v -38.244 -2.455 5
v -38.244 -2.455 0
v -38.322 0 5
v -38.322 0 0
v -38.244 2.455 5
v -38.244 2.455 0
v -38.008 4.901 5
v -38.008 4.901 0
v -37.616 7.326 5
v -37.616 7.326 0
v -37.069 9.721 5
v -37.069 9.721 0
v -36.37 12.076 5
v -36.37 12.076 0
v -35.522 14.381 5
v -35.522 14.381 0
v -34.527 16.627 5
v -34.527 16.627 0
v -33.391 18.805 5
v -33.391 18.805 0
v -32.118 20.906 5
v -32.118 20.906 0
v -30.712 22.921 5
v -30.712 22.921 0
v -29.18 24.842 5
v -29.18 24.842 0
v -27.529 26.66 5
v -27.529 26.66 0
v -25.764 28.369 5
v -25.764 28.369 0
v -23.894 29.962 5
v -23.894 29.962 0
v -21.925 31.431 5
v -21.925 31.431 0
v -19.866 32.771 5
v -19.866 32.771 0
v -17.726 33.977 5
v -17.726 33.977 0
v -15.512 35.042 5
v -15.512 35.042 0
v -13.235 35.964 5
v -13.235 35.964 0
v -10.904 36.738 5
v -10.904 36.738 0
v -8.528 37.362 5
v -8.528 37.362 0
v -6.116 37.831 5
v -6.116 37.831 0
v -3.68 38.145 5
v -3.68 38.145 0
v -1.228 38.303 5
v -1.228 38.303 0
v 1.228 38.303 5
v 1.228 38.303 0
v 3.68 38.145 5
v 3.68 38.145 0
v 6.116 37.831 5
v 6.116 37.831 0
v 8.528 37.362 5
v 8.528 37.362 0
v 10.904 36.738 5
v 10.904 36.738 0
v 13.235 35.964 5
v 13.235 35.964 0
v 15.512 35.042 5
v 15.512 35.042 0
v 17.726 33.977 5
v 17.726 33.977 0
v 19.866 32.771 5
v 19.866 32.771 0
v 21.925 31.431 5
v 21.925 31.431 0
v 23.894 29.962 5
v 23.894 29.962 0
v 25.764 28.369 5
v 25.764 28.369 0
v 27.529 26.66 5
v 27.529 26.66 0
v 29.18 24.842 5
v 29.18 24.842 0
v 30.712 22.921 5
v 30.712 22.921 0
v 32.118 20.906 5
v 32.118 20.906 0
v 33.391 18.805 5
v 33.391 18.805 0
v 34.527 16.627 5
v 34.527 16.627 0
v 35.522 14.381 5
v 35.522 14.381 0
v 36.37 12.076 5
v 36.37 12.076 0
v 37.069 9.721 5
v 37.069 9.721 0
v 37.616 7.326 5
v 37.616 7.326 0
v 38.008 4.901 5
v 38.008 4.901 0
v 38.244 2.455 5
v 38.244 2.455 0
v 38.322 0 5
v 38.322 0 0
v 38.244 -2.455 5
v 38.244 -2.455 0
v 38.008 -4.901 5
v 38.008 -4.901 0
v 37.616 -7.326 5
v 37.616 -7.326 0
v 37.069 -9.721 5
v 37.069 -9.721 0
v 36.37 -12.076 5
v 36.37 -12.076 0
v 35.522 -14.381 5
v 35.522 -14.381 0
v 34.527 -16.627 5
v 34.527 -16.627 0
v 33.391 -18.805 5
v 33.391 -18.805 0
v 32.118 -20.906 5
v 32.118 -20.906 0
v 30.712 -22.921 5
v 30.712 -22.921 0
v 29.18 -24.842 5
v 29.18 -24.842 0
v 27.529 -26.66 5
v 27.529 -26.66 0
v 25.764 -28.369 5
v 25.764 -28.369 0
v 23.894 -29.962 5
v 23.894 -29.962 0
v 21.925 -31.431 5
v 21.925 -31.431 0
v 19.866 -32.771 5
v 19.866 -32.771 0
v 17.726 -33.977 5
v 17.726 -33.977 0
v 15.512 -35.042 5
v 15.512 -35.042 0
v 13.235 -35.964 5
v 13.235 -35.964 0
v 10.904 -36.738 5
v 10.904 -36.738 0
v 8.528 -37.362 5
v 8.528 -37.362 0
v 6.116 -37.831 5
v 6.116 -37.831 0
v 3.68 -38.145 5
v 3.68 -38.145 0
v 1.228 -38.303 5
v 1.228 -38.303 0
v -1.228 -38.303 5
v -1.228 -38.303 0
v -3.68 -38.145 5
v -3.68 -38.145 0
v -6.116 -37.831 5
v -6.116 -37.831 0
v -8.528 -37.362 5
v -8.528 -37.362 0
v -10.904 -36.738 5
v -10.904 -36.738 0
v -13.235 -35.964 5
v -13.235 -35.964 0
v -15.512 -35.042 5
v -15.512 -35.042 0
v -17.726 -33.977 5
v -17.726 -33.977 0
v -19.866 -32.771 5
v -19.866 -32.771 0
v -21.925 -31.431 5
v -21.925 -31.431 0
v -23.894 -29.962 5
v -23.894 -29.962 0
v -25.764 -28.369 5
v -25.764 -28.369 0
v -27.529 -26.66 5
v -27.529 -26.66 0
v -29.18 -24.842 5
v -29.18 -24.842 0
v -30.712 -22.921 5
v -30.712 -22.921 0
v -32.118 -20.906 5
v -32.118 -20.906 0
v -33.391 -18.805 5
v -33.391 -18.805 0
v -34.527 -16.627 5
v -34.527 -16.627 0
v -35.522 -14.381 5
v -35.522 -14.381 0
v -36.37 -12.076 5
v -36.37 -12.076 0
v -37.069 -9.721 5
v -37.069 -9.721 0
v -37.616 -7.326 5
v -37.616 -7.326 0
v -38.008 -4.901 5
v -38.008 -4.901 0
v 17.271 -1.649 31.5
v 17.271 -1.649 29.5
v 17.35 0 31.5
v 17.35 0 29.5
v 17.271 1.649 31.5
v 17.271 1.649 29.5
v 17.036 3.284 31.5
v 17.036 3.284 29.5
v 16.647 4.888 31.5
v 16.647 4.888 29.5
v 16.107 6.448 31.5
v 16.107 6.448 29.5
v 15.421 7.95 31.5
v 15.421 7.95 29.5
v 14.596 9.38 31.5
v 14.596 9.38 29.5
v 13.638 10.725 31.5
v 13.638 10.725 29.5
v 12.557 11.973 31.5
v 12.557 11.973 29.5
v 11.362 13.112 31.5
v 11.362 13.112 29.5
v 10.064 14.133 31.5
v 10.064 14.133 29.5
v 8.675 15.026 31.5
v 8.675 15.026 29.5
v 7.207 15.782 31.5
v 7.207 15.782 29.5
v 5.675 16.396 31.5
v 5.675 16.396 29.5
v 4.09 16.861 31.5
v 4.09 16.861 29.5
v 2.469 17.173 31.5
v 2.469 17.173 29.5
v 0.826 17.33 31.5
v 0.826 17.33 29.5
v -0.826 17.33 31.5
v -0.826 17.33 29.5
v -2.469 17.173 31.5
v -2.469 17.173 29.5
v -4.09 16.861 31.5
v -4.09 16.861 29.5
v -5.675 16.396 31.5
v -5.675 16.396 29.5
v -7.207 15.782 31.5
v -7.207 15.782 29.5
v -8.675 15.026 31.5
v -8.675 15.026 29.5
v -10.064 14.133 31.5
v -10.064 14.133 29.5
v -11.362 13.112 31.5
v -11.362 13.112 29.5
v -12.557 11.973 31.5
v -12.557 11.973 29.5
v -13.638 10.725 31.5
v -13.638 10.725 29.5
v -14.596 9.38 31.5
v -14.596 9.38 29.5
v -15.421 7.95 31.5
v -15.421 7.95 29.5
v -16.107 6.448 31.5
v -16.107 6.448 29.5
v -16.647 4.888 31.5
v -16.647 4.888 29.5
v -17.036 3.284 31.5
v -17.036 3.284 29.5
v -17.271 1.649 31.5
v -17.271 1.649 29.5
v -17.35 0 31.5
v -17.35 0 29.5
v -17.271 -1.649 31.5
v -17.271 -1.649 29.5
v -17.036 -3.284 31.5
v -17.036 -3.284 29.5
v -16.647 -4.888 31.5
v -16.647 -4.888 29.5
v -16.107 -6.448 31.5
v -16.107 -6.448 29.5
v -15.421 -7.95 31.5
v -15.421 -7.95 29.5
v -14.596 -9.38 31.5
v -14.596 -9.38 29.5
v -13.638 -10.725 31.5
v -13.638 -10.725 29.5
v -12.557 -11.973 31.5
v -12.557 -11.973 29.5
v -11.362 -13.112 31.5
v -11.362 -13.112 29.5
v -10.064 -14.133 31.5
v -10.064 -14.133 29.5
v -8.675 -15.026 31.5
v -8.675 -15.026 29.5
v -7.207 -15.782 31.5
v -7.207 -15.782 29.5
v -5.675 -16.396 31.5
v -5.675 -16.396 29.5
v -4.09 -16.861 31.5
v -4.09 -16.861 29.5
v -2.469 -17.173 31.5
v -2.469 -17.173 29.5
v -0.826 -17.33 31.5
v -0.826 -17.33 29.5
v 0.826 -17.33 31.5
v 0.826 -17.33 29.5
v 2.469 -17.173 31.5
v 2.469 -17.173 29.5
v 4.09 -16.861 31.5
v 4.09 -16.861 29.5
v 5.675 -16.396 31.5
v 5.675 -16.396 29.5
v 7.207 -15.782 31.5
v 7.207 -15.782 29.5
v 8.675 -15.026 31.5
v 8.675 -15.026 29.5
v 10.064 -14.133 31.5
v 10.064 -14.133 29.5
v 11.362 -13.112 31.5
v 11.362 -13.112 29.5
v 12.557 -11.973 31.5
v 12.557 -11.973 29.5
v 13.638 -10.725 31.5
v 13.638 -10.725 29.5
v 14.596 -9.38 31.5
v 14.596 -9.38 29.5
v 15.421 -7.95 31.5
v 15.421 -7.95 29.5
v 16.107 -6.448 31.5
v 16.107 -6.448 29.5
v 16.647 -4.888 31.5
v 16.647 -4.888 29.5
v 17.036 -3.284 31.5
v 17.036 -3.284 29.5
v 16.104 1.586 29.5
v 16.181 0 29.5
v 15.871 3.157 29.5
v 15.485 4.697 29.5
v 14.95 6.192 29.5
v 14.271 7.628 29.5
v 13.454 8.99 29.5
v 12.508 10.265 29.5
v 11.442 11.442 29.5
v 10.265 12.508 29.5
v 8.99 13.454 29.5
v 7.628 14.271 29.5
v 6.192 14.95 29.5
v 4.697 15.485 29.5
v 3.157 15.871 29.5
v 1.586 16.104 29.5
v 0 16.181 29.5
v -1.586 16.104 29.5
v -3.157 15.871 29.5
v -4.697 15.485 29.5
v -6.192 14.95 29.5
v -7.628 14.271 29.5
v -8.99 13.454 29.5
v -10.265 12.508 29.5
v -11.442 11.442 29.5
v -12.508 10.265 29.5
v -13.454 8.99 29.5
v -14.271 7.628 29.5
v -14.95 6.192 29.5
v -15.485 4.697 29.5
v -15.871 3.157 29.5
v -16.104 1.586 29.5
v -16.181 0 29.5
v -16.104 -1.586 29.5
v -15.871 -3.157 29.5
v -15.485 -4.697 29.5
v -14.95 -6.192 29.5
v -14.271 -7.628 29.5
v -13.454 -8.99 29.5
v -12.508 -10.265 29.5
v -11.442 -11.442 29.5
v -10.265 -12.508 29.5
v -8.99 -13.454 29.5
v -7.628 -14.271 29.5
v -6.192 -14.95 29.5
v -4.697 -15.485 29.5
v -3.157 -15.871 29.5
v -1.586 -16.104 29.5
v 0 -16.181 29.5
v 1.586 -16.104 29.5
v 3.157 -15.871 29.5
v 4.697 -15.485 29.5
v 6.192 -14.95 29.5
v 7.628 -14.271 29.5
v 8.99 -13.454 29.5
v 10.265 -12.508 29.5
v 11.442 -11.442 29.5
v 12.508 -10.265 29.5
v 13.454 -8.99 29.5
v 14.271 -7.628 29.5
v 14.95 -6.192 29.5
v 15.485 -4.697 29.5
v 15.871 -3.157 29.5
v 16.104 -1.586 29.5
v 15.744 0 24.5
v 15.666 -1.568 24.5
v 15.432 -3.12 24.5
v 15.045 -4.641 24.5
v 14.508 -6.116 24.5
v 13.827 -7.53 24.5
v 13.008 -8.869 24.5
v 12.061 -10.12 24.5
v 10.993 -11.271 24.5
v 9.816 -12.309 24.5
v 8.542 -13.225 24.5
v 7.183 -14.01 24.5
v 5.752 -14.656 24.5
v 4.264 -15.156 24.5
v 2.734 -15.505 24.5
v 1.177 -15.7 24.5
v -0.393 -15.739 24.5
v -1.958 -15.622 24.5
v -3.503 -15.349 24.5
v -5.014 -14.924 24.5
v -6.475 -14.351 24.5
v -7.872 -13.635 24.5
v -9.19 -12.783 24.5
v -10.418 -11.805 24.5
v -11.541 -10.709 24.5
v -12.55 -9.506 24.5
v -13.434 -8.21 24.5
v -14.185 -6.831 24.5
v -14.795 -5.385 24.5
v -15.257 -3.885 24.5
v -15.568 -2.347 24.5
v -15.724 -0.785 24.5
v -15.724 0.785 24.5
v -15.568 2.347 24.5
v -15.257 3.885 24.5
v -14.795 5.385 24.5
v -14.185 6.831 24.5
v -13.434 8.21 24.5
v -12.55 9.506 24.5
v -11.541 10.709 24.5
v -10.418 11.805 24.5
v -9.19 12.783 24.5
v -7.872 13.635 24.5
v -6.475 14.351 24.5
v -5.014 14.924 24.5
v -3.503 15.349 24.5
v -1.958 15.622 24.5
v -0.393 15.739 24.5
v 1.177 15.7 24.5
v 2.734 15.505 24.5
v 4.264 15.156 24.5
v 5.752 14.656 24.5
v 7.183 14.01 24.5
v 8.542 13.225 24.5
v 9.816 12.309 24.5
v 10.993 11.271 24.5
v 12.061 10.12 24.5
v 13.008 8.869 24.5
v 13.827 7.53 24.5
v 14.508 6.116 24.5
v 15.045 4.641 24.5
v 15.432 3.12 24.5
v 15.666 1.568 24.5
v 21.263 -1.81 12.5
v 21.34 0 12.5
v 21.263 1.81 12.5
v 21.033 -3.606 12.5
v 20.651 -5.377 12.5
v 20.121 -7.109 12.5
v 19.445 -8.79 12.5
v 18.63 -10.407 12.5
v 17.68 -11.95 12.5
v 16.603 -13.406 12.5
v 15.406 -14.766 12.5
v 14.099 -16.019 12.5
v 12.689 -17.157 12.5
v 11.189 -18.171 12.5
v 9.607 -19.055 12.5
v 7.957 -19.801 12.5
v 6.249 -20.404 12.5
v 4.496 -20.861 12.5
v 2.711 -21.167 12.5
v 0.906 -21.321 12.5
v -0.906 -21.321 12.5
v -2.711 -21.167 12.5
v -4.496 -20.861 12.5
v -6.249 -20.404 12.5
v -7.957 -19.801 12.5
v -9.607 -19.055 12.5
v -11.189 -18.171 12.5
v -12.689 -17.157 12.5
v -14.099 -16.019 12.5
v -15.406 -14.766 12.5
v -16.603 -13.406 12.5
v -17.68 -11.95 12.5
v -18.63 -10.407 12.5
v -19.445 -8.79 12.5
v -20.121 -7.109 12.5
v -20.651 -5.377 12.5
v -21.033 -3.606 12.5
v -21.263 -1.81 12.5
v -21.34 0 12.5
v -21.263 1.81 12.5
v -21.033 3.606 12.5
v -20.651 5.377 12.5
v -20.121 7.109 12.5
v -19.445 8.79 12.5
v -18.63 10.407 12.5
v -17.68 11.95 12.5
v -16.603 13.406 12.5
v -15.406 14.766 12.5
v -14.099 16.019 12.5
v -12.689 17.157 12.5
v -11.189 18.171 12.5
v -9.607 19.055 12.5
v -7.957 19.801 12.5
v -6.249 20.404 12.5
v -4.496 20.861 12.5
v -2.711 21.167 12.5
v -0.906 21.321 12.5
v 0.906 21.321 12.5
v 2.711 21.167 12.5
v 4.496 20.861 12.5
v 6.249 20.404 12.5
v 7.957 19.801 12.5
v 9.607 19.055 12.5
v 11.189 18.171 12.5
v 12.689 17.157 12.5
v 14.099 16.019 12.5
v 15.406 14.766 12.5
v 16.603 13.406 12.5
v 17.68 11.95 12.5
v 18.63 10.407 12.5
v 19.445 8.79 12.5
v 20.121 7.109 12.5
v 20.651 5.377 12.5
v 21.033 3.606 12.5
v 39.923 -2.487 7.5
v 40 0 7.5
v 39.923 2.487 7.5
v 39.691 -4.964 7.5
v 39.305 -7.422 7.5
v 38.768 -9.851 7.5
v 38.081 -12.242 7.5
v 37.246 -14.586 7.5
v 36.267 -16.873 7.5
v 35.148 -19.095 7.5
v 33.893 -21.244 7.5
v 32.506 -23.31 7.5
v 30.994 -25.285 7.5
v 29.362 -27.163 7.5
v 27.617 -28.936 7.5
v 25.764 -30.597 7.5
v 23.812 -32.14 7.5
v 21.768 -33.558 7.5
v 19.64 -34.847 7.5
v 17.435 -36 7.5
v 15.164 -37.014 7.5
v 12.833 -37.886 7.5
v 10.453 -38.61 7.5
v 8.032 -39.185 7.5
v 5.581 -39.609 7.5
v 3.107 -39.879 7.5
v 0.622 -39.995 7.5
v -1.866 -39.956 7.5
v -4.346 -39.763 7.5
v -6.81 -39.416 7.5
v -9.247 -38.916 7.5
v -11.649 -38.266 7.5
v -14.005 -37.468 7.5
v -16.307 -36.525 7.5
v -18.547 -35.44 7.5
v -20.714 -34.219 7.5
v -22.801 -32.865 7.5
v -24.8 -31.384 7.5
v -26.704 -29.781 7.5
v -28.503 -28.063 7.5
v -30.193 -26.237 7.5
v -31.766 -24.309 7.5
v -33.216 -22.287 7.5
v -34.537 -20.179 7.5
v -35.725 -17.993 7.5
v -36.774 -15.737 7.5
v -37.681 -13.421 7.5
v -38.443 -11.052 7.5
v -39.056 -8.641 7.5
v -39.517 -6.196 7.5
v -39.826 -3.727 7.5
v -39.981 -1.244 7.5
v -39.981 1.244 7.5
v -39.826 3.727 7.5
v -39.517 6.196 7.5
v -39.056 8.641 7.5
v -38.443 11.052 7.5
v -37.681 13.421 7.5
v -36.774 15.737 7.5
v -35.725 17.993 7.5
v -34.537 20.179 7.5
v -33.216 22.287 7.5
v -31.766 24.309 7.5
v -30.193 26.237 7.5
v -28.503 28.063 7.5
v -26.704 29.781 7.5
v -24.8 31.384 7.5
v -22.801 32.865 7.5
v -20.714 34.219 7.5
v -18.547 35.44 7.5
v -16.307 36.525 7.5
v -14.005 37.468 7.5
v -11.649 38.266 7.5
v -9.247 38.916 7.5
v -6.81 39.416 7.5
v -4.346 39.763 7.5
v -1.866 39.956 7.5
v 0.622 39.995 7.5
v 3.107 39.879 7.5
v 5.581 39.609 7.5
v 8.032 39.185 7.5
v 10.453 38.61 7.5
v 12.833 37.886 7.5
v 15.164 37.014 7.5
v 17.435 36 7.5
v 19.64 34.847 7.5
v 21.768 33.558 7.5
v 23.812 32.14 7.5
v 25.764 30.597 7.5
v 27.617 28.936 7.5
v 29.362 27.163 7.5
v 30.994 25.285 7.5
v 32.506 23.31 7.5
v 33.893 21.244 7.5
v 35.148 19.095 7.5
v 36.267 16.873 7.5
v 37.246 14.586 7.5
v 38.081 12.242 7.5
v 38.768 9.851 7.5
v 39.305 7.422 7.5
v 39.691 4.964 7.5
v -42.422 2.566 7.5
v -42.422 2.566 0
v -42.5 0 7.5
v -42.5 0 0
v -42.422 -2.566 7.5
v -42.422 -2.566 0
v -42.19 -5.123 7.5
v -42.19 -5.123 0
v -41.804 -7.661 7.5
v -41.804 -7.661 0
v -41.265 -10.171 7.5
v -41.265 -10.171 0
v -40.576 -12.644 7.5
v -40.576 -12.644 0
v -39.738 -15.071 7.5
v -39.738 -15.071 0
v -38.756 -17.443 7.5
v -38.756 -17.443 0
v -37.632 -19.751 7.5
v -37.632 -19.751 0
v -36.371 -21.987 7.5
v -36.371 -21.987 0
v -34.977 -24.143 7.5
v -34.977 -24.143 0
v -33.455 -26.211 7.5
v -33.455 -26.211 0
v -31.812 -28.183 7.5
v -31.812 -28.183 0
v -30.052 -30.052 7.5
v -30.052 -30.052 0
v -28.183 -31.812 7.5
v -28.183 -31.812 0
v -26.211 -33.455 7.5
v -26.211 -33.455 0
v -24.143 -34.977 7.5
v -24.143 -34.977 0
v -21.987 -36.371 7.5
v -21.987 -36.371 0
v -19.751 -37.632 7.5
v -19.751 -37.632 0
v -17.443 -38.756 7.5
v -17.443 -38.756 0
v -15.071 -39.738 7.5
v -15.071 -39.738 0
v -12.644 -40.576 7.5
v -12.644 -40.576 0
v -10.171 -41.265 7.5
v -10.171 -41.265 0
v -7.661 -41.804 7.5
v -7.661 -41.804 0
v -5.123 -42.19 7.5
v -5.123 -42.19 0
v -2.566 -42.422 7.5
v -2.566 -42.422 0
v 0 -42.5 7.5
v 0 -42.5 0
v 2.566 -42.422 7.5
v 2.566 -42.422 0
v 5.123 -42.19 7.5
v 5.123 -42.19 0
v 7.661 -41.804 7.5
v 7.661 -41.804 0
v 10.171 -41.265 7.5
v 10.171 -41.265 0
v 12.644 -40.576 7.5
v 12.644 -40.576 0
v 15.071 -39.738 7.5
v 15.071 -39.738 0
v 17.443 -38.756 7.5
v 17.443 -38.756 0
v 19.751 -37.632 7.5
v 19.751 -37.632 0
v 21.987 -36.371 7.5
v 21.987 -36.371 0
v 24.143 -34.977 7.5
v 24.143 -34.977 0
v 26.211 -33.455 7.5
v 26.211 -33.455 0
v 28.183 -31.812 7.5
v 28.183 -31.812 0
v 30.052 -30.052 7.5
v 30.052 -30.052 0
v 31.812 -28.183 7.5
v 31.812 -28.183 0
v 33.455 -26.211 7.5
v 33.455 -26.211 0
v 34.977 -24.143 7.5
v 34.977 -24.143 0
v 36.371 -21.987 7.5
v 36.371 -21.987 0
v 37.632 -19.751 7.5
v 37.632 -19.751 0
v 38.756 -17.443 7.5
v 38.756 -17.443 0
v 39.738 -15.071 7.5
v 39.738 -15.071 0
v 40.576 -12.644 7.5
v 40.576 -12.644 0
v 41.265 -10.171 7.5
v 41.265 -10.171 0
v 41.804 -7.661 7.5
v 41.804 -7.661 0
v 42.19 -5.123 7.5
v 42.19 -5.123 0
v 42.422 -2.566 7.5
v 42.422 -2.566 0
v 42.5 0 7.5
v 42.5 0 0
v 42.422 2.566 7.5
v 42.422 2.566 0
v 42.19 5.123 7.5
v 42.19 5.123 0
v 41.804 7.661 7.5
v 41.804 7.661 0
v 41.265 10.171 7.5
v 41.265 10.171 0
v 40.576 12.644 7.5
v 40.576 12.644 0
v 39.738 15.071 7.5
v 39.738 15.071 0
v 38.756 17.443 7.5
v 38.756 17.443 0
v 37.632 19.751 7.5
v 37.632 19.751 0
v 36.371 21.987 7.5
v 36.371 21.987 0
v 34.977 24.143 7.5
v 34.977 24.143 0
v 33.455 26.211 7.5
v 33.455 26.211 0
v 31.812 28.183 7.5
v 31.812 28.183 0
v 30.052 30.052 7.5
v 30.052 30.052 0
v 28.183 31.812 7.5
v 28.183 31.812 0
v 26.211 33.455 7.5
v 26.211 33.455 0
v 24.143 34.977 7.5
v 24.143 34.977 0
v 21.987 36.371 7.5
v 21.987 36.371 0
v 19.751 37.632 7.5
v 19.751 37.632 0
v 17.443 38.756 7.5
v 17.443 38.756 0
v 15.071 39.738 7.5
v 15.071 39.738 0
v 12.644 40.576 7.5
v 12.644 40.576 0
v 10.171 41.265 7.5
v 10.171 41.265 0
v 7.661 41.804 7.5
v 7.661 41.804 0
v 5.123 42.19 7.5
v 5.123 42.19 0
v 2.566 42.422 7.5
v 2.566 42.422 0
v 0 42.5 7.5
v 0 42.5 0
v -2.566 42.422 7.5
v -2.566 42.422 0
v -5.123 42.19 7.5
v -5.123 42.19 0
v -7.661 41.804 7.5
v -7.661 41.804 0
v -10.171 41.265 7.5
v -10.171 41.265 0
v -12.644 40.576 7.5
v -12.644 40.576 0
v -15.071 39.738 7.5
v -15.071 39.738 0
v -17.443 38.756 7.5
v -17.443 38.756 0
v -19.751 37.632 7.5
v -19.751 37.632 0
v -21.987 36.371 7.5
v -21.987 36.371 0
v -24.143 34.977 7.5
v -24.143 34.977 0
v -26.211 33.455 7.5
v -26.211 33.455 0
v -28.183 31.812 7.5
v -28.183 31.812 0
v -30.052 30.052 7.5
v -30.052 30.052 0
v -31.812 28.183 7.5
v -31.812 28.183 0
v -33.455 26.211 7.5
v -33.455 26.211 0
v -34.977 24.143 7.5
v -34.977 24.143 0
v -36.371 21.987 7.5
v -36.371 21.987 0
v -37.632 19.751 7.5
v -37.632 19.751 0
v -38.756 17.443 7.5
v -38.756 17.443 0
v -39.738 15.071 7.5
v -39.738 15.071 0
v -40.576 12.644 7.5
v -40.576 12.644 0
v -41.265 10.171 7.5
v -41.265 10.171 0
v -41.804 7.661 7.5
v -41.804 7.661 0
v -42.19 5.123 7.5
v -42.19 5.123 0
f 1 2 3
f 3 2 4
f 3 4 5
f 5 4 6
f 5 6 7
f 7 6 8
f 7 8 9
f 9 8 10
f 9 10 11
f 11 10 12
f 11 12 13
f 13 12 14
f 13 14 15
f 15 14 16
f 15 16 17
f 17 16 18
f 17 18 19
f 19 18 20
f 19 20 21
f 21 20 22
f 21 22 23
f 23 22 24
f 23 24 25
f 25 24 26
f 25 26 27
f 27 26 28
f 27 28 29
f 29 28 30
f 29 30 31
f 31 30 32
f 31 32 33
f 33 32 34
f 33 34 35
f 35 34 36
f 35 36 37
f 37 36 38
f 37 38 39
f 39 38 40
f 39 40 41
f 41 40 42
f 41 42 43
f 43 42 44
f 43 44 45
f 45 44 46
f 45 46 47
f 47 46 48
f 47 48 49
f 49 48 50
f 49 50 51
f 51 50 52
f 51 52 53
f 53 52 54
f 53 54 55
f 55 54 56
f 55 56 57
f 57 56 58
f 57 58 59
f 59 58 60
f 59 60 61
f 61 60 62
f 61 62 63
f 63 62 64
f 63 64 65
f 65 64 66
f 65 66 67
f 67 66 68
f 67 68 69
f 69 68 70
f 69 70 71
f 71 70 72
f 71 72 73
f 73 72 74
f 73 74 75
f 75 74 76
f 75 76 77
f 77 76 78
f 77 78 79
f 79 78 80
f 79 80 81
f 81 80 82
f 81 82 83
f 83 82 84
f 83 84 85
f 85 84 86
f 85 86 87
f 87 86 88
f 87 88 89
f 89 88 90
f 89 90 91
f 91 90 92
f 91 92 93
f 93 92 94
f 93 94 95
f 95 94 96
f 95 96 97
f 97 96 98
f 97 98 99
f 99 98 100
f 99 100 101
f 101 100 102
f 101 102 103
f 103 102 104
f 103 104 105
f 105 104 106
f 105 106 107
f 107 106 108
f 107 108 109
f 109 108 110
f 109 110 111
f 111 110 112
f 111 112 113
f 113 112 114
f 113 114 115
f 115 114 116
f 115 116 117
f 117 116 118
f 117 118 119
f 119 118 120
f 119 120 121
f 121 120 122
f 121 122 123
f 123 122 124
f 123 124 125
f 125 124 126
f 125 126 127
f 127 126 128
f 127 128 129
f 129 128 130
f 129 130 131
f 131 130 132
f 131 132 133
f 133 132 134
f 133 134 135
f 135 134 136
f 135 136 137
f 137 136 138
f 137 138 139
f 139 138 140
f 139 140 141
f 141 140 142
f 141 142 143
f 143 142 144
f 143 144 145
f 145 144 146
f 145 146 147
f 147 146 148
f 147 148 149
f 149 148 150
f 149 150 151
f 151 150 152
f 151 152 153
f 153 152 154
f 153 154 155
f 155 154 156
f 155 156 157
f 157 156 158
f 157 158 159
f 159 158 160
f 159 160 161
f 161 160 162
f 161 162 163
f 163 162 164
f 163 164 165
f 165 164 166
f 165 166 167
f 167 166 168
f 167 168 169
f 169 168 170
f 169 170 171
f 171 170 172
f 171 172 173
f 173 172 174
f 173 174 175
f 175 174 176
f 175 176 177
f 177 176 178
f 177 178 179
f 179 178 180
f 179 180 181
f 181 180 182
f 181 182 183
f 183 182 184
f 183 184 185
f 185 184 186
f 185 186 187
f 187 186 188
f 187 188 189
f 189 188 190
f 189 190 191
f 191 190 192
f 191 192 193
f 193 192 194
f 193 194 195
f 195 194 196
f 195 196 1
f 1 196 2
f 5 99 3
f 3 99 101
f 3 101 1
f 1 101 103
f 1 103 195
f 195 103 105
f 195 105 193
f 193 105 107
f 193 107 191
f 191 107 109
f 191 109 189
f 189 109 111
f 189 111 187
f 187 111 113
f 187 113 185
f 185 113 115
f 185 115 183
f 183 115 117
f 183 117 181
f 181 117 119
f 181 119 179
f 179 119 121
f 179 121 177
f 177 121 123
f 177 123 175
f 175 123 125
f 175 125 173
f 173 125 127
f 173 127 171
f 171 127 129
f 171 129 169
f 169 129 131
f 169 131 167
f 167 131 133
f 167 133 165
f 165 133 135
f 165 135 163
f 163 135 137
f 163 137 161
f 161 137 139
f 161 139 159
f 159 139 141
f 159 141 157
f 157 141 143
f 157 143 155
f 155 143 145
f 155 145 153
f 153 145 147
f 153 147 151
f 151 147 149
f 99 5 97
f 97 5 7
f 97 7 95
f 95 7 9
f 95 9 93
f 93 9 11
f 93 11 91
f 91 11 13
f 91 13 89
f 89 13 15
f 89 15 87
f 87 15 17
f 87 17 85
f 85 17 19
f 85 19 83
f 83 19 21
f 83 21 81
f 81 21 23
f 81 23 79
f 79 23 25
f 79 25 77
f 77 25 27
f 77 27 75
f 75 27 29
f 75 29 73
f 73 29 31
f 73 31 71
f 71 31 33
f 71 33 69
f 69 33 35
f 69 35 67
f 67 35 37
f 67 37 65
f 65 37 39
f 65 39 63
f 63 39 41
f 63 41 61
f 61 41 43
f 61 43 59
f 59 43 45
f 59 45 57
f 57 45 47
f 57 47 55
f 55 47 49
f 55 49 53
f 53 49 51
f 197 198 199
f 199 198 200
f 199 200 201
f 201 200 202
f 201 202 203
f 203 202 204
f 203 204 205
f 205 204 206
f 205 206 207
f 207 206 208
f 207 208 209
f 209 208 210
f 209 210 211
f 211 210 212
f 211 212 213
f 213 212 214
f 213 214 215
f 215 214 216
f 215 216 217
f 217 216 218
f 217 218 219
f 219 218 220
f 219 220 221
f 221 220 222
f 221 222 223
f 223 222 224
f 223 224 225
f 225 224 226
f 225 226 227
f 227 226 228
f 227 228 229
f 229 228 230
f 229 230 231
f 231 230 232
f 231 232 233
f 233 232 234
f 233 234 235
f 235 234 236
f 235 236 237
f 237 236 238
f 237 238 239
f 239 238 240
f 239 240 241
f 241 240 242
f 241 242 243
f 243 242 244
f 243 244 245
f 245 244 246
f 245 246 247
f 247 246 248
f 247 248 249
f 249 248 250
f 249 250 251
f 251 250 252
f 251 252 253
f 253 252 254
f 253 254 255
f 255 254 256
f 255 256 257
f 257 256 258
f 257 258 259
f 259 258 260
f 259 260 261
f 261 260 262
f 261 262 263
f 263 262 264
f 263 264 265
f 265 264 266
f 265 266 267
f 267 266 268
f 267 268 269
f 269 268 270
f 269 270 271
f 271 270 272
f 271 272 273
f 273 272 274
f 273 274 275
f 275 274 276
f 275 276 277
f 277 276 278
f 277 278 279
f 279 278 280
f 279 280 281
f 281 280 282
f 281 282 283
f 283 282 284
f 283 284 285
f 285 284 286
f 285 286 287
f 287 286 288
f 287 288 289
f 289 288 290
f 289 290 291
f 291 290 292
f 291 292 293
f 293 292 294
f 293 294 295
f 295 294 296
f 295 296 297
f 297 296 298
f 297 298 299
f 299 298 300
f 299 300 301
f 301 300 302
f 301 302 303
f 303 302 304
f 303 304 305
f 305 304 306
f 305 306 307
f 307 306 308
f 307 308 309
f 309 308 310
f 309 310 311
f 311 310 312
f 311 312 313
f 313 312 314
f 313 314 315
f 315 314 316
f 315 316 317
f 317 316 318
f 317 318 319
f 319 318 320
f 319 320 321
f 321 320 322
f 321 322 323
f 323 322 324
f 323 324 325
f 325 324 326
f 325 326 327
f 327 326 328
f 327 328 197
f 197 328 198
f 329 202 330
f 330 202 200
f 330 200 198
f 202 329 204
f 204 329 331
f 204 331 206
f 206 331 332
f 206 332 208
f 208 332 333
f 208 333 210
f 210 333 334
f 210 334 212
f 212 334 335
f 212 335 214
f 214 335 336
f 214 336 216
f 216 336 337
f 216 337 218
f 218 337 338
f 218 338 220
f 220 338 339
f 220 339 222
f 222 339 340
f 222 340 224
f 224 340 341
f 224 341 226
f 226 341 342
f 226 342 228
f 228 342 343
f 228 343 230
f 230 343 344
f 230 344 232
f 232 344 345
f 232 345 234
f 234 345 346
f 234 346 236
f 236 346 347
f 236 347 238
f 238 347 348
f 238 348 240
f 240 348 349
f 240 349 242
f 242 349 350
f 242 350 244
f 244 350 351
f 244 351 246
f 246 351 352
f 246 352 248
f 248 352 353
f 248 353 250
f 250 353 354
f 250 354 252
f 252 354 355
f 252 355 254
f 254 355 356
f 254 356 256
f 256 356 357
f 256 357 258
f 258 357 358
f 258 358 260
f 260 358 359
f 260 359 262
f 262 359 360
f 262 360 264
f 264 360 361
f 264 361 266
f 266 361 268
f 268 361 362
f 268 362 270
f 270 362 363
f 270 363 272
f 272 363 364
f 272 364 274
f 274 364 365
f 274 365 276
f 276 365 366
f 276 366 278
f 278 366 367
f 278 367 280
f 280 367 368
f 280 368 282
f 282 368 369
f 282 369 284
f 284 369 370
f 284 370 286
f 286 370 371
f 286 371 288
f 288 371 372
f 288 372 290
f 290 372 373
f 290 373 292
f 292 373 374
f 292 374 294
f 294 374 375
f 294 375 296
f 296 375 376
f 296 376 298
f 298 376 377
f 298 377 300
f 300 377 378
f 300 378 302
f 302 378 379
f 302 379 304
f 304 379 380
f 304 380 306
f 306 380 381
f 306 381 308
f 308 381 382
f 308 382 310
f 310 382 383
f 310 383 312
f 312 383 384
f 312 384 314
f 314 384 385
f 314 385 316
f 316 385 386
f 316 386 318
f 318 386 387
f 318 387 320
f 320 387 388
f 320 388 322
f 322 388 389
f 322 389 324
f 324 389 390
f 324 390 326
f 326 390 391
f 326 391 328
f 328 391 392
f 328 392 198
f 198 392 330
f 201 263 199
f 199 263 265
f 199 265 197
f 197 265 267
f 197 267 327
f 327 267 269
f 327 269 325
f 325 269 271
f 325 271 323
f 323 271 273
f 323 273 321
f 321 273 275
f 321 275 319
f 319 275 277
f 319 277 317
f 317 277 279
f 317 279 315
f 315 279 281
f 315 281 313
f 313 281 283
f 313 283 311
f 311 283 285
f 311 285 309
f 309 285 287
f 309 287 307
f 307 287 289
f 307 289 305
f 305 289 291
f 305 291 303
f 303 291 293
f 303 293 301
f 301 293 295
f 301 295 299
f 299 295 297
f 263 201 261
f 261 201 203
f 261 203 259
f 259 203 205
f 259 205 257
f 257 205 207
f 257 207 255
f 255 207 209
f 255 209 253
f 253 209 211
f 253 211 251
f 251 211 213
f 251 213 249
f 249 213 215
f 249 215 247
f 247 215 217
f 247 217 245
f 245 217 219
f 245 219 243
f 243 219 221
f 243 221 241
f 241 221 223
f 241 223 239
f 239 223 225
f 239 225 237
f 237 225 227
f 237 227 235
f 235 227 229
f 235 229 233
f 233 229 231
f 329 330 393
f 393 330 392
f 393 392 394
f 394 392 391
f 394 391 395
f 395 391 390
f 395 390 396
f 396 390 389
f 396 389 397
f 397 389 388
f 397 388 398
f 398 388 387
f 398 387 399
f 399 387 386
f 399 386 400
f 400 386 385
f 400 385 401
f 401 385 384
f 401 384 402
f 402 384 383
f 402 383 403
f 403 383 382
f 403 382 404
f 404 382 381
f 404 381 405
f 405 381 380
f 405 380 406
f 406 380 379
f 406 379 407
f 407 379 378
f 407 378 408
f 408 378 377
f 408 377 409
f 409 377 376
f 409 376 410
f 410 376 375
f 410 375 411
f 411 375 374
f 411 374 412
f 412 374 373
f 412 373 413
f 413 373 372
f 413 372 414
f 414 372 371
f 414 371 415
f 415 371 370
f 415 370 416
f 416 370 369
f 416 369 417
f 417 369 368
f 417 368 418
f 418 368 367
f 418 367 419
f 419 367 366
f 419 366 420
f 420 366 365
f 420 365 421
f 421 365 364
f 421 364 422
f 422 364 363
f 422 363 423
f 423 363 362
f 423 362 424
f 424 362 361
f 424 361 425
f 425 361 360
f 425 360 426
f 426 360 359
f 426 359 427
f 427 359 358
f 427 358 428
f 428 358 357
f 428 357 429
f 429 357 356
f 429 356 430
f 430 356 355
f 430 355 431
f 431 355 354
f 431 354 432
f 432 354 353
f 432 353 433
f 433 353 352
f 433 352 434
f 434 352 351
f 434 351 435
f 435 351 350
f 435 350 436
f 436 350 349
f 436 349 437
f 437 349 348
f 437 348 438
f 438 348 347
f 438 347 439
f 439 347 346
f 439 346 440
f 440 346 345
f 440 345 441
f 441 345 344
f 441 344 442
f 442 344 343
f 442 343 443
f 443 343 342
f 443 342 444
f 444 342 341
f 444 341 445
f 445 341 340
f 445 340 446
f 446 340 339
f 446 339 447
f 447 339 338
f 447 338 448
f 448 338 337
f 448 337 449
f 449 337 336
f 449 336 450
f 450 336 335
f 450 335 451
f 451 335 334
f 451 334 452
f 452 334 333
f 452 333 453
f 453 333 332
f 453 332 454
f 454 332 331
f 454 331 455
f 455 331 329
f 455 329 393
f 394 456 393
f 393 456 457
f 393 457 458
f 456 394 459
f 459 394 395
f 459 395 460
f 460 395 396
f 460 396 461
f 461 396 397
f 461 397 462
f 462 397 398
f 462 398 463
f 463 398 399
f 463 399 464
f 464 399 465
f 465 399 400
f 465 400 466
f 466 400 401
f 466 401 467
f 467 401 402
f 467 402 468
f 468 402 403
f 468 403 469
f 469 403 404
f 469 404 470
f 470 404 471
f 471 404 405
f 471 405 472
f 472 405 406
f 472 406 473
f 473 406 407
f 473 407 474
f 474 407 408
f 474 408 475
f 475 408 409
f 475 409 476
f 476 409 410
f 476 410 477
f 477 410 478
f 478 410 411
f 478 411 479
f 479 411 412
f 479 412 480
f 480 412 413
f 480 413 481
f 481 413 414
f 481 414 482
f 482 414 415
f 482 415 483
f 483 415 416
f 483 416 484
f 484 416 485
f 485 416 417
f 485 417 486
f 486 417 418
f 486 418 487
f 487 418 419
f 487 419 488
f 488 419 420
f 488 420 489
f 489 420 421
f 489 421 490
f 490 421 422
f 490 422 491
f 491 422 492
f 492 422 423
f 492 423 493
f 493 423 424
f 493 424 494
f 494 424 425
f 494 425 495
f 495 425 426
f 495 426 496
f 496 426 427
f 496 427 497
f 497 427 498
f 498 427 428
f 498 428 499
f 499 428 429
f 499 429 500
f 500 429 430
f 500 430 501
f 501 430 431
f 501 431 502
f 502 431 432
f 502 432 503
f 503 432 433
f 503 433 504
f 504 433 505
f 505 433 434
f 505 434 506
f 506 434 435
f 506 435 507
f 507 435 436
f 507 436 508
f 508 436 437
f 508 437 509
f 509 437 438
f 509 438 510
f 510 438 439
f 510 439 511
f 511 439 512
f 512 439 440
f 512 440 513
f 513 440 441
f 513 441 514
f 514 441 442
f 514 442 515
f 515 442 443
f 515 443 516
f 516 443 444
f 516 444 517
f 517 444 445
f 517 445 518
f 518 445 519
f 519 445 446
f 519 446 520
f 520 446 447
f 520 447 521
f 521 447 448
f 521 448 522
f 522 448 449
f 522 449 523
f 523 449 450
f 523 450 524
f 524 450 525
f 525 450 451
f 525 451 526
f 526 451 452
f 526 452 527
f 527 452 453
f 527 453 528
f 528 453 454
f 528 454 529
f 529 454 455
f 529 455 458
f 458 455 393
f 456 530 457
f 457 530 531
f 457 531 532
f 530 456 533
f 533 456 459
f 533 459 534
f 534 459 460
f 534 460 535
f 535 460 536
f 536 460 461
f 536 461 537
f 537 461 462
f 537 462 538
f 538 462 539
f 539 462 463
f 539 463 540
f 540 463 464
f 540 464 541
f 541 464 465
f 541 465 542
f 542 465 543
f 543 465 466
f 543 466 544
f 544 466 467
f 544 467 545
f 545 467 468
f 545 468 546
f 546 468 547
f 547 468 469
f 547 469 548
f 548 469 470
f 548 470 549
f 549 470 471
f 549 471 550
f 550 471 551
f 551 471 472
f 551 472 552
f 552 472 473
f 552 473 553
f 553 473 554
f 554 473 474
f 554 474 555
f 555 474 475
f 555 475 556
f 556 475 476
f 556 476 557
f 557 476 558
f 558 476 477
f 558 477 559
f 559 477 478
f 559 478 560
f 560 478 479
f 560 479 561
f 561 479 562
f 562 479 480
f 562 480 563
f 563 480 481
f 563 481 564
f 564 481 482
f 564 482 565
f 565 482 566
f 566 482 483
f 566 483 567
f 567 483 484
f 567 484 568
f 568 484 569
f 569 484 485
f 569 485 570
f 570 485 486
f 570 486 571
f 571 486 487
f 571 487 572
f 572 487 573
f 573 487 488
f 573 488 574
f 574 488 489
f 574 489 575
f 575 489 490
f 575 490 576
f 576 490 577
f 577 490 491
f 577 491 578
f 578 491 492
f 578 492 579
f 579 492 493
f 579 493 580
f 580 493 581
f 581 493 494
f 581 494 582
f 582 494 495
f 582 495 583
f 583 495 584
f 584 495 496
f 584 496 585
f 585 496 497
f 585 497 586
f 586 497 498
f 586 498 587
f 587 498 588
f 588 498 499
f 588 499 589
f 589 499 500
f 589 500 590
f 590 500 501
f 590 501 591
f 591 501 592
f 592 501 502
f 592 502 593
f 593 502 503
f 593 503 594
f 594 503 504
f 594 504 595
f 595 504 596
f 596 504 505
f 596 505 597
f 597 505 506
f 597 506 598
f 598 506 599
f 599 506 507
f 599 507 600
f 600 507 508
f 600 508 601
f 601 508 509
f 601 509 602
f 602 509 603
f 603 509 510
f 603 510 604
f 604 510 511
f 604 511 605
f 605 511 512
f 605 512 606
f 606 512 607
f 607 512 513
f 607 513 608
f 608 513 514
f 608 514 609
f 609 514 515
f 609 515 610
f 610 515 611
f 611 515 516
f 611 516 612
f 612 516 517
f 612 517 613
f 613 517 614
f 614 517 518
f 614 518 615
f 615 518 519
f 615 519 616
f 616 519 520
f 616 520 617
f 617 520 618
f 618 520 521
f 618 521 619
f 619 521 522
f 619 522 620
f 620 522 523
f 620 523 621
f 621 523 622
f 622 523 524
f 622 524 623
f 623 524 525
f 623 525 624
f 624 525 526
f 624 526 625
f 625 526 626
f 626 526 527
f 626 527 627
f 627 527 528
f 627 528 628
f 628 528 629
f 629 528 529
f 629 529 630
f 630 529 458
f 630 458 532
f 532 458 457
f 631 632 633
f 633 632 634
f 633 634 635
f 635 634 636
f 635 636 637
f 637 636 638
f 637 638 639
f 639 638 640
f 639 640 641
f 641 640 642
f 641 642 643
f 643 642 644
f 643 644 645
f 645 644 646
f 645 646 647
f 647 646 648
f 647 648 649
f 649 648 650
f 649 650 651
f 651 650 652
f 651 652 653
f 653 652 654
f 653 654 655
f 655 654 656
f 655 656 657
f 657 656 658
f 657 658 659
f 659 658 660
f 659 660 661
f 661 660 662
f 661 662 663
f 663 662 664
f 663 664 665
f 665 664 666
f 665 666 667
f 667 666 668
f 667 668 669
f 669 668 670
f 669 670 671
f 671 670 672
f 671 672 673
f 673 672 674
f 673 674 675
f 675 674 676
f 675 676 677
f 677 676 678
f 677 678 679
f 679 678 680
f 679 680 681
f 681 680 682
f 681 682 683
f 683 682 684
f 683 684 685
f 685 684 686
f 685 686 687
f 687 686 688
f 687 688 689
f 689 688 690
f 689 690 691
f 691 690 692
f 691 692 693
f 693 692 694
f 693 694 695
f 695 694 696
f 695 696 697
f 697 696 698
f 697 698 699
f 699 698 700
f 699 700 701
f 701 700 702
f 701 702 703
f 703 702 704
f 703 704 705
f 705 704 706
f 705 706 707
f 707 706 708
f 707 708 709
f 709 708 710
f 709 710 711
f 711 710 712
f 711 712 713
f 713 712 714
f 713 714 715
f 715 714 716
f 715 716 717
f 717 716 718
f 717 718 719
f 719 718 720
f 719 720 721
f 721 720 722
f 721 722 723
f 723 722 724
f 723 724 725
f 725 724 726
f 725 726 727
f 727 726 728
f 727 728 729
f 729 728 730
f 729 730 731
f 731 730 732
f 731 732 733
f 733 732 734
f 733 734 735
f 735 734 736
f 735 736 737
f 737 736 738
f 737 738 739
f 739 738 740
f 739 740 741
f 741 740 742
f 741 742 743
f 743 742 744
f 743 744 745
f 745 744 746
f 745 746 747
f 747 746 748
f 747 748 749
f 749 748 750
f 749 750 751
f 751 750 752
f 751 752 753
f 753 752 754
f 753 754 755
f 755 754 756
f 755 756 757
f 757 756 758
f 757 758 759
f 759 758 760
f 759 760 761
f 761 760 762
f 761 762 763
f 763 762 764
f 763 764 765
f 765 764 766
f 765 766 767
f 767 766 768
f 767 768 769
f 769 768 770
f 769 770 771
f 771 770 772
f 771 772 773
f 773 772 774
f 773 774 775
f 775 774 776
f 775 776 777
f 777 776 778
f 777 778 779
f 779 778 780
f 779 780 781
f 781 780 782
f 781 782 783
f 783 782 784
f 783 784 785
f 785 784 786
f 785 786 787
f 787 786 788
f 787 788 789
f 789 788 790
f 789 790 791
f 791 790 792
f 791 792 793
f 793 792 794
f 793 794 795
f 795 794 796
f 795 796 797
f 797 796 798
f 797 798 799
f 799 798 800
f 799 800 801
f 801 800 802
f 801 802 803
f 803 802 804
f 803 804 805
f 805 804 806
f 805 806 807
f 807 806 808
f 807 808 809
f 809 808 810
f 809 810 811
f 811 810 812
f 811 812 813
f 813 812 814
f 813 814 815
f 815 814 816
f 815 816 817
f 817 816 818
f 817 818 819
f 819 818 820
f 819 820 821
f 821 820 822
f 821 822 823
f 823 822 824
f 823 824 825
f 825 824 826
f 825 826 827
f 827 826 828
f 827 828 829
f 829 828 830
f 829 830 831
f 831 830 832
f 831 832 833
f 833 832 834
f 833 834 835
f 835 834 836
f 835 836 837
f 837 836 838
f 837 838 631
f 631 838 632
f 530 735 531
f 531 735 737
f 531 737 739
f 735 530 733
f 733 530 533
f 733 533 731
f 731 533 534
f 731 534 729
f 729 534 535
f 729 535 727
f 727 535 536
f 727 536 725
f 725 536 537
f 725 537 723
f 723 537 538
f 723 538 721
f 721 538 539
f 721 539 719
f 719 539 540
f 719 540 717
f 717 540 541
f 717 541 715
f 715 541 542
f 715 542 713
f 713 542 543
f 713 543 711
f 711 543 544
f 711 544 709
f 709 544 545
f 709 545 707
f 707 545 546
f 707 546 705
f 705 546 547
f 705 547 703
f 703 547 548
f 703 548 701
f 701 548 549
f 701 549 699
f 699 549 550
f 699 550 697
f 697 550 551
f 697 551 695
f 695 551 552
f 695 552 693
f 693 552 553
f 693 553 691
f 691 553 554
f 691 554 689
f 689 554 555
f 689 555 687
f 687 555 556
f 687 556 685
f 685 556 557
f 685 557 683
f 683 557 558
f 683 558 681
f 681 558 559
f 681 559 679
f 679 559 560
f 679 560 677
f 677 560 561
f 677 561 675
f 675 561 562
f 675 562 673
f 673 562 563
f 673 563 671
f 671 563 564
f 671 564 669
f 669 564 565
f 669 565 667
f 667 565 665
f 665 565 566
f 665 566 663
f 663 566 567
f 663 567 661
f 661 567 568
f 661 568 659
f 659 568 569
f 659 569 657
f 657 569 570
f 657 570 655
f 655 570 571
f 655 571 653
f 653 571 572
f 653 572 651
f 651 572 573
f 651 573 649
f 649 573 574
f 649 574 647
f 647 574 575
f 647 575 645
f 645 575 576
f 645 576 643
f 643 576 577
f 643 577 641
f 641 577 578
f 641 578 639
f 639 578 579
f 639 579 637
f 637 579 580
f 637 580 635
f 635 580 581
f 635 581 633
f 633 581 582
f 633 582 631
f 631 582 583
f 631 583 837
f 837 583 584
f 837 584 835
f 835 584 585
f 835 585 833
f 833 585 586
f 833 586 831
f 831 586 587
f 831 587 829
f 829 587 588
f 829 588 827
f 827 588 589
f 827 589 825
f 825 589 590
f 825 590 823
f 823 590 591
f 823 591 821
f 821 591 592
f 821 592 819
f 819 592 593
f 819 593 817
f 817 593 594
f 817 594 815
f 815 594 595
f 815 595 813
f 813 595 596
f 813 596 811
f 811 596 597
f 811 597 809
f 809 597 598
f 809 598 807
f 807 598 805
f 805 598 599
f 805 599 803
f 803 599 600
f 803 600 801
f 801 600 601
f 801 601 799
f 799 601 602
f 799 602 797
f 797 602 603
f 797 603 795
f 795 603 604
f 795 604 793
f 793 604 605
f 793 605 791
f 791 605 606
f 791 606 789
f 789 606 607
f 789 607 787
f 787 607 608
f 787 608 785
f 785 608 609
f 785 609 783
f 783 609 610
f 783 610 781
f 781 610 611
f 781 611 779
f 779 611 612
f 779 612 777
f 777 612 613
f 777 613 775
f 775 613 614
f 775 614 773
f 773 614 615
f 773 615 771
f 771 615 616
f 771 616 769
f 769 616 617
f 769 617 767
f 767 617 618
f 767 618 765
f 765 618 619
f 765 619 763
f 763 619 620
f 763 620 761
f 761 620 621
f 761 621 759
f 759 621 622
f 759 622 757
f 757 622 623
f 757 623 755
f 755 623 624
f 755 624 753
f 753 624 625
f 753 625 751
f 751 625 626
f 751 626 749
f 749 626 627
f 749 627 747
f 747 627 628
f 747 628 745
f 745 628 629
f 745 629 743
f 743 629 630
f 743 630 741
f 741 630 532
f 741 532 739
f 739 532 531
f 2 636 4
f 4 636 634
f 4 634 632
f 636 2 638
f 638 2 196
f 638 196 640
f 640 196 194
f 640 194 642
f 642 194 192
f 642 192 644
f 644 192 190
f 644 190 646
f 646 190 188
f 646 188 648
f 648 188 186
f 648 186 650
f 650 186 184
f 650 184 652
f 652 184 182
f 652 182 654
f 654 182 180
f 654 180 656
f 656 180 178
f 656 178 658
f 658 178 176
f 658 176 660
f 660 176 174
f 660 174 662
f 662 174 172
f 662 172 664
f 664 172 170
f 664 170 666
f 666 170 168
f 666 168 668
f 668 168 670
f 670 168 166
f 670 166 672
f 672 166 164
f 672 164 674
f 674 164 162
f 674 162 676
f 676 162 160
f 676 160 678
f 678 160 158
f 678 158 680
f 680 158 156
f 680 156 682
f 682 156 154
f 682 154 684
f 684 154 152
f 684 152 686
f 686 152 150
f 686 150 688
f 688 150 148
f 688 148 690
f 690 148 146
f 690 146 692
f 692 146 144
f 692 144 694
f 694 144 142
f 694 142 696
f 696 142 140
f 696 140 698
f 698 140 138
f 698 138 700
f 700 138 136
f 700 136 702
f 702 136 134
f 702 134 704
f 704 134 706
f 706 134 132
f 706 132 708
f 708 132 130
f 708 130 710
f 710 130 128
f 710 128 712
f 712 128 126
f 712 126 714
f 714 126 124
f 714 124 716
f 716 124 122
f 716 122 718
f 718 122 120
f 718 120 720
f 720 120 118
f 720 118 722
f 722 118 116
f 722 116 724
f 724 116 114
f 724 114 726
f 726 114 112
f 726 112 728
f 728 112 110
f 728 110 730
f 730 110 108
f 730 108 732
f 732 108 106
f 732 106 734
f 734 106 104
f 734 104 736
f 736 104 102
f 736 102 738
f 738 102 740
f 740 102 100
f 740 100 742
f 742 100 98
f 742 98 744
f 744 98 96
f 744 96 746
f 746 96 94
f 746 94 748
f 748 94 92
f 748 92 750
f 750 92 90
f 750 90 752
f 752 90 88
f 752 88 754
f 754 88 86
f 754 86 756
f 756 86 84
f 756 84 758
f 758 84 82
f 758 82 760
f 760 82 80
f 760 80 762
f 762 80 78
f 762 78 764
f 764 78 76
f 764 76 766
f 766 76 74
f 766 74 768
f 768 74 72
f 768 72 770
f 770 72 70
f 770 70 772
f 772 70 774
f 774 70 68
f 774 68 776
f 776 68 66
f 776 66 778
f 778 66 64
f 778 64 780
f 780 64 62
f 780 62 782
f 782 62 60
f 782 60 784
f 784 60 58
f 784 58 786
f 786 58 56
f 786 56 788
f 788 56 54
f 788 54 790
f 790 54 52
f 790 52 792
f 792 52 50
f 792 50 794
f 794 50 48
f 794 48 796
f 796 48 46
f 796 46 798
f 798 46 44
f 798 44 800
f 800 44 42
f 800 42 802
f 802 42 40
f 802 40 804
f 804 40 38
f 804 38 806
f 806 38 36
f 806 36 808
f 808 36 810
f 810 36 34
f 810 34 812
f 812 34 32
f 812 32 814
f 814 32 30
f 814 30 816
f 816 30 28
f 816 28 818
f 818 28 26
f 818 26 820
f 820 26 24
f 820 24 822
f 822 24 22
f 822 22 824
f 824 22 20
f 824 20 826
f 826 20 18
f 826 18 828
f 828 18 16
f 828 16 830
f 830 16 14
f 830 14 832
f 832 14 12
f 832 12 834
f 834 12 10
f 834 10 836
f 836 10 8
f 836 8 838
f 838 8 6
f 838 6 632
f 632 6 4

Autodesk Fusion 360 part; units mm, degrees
sketch "Sketch1" plane through (0, 0, 0) normal (0, 0, 1) x (1, 0, 0)
  circle A0 centre (0, 0) radius 42.5
  dimension "d1" = 85
extrude "Extrude1" add sketch "Sketch1" along normal blind 7.5 makes body 1
sketch "Sketch2" plane through (0, 0, 7.5) normal (0, 0, 1) x (-1, 0, 0)
  circle A0 centre (0, 0) radius 42.5
  circle A1 centre (0, 0) radius 40
extrude "Extrude2" add sketch "Sketch2" along normal blind 5 draft -75 contours A1 bodies 1
sketch "Sketch3" plane through (0, 0, 12.5) normal (0, 0, 1) x (-1, 0, 0)
  circle A0 centre (0, 0) radius 21.3397
extrude "Extrude3" add sketch "Sketch3" along normal blind 12 draft -25 bodies 1
extrude "Extrude4" add 1 faces at (-1.9173, -4.8852, 24.5) along direction (0, 0, 1) blind 5 draft 5 on bodies 1 bodies 1
sketch "Sketch4" plane through (0, 0, 0) normal (0, 1, 0) x (1, 0, 0)
sketch "Sketch5" plane through (0, 0, 29.5) normal (0, 0, 1) x (-1, 0, 0)
  circle A0 centre (0, 0) radius 16.1815
  circle A1 centre (0, 0) radius 17.35
  dimension "d10" = 34.7
extrude "Extrude5" add sketch "Sketch5" along normal blind 2 separate body makes body 2
extrude "Extrude6" add 1 faces at (1.2002, -5.2586, 29.5) along direction (0, 0, 1) blind 2 on bodies 1 bodies 1 2
sketch "Sketch6" plane through (0, 0, 0) normal (0, 0, -1) x (1, 0, 0)
  circle A0 centre (0, 0) radius 42.5
  circle A1 centre (0, 0) radius 38.3224
extrude "Extrude7" cut sketch "Sketch6" against normal blind 5 contours A1 bodies 1
